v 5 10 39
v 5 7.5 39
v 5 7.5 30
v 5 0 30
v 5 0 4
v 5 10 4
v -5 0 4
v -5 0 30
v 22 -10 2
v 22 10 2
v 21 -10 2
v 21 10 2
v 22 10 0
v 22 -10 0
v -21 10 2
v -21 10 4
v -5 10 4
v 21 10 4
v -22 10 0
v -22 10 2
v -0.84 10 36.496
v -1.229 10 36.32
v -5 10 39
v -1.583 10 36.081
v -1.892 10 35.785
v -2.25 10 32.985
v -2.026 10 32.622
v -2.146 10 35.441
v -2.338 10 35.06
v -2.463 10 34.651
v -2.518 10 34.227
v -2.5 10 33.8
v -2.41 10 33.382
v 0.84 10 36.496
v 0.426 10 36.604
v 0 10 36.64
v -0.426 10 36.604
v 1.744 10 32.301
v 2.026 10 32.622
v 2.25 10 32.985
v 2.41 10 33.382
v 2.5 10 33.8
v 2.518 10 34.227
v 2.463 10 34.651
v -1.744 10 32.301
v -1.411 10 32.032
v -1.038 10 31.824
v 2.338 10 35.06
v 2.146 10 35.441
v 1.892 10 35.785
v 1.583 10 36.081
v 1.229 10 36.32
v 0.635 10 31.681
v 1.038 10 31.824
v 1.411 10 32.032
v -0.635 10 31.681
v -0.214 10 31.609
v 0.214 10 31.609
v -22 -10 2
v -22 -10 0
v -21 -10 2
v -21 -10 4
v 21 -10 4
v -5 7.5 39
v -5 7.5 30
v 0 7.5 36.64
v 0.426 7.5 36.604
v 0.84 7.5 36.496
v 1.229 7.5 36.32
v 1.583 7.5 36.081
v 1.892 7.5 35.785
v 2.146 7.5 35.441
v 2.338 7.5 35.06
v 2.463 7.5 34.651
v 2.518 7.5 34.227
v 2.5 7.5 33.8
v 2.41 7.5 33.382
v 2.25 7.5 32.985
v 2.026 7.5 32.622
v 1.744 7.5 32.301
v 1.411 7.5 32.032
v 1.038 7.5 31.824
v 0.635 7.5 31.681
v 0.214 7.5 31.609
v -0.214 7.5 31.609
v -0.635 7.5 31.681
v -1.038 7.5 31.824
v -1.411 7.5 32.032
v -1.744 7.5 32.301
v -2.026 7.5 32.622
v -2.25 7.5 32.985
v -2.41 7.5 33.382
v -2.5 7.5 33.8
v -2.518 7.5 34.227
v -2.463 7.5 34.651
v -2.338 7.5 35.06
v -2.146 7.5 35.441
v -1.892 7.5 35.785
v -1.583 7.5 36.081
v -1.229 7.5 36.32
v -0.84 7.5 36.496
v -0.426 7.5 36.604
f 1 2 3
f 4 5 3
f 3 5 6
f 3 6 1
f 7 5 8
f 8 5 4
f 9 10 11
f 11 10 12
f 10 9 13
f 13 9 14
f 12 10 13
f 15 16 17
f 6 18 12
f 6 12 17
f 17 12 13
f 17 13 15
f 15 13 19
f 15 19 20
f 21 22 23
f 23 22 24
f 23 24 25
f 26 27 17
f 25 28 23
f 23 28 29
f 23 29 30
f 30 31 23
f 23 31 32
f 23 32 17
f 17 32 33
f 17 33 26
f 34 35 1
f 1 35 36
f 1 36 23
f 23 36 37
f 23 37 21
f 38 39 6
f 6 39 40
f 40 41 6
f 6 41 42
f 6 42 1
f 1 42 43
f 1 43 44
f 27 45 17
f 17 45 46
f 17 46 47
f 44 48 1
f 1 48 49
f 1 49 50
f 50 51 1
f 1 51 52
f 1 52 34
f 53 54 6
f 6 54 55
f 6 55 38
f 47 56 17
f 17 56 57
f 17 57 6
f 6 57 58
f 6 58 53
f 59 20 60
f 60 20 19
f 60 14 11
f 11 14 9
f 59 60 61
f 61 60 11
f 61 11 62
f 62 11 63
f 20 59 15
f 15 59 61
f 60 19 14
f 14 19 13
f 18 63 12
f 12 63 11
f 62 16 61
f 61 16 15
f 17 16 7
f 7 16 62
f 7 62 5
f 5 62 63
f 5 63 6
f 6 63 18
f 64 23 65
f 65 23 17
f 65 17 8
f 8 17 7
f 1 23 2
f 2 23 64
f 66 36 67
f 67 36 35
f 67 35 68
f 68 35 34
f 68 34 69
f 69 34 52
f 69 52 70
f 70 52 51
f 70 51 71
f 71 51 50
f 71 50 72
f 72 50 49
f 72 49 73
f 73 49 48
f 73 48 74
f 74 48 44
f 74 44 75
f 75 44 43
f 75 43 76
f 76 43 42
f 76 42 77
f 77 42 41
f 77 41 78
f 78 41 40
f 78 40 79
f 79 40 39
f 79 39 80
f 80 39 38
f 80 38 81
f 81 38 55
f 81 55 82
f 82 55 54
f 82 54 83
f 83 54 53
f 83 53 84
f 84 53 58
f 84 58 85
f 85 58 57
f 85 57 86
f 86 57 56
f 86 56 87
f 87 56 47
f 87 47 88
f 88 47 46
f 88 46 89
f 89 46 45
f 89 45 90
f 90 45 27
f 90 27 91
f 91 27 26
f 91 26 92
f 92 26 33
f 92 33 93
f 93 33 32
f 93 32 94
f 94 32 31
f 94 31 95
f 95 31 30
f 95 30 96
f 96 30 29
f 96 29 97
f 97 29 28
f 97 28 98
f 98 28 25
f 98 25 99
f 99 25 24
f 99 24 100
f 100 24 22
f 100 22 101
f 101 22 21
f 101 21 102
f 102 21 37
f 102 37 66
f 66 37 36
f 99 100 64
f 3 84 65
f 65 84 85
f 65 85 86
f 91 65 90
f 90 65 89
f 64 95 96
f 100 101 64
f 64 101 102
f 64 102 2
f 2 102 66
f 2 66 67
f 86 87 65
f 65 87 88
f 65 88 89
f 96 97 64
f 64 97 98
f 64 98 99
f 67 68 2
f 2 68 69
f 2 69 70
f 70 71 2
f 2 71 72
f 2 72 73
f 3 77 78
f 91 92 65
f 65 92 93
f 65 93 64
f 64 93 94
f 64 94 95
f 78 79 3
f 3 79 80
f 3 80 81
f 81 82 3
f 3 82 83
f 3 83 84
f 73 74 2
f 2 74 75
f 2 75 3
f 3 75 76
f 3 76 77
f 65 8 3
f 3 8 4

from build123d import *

# Parameters (mm, degrees)
IZIM1_W                     = 44
IZIM1_H                     = 20
Y_KSEKLIK_EKSTR_ZYON1_DEPTH = 2
IZIM2_W                     = 42
IZIM2_H                     = 20
Y_KSEKLIK_EKSTR_ZYON2_DEPTH = 2
IZIM3_W                     = 10
IZIM3_H                     = 10
Y_KSEKLIK_EKSTR_ZYON3_DEPTH = 35
IZIM4_R                     = 2.52
KES_EKSTR_ZYON1_DEPTH       = 11
IZIM5_W                     = 10
IZIM5_H                     = 7.5
KES_EKSTR_ZYON2_DEPTH       = 9


with BuildPart() as part:
    # Çizim1 → Yükseklik-Ekstrüzyon1 (new body)
    with BuildSketch(Plane.XY):
        Rectangle(IZIM1_W, IZIM1_H)
    extrude(amount=Y_KSEKLIK_EKSTR_ZYON1_DEPTH)

    # Çizim2 → Yükseklik-Ekstrüzyon2 (add)
    with BuildSketch(Plane.XY.offset(2)):
        Rectangle(IZIM2_W, IZIM2_H)
    extrude(amount=Y_KSEKLIK_EKSTR_ZYON2_DEPTH)

    # Çizim3 → Yükseklik-Ekstrüzyon3 (add)
    with BuildSketch(Plane.XY.offset(4)):
        with Locations((0, 5)):
            Rectangle(IZIM3_W, IZIM3_H)
    extrude(amount=Y_KSEKLIK_EKSTR_ZYON3_DEPTH)

    # Çizim4 → Kes-Ekstrüzyon1 (cut)
    with BuildSketch(Plane(origin=(0, 10, 0), x_dir=(1, 0, 0), z_dir=(0, 1, 0))):
        with Locations(Location((0, -34.12, 0), (0, 0, 270))):
            Circle(IZIM4_R)
    extrude(amount=-KES_EKSTR_ZYON1_DEPTH, mode=Mode.SUBTRACT)

    # Çizim5 → Kes-Ekstrüzyon2 (cut)
    with BuildSketch(Plane.XY.offset(39)):
        with Locations((0, 3.75)):
            Rectangle(IZIM5_W, IZIM5_H)
    extrude(amount=-KES_EKSTR_ZYON2_DEPTH, mode=Mode.SUBTRACT)


solid = part.part
